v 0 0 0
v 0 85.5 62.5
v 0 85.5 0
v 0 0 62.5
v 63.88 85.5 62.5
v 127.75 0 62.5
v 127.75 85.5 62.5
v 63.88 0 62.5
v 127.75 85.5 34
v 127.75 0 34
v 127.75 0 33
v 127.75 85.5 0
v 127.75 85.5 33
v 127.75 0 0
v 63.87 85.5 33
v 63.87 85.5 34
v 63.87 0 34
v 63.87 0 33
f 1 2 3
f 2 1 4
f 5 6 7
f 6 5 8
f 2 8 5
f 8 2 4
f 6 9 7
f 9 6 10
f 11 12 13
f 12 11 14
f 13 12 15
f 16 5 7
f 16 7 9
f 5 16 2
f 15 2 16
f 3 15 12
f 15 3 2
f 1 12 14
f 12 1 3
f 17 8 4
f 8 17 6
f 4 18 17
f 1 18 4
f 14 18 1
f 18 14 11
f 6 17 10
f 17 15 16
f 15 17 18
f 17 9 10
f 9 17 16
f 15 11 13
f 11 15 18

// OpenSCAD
// Opentrons Calibration Block - Short Side: Right
// loadName: opentrons_calibrationblock_short_side_right
// Auto-generated by labware_to_stl.py from Opentrons V2 labware definition

$fn = 64;

difference() {
    // ── Labware body ──────────────────────────────────────────────
    cube([127.7500, 85.5000, 62.5000]);

    // ── Well cutouts ──────────────────────────────────────────────
    // Well A1
    translate([0.0000, 0.0000, 62.5000])
        cube([63.8800, 85.5000, 1.0000]);
    // Well A2
    translate([63.8700, 0.0000, 33.0000])
        cube([63.8800, 85.5000, 1.0000]);
}
